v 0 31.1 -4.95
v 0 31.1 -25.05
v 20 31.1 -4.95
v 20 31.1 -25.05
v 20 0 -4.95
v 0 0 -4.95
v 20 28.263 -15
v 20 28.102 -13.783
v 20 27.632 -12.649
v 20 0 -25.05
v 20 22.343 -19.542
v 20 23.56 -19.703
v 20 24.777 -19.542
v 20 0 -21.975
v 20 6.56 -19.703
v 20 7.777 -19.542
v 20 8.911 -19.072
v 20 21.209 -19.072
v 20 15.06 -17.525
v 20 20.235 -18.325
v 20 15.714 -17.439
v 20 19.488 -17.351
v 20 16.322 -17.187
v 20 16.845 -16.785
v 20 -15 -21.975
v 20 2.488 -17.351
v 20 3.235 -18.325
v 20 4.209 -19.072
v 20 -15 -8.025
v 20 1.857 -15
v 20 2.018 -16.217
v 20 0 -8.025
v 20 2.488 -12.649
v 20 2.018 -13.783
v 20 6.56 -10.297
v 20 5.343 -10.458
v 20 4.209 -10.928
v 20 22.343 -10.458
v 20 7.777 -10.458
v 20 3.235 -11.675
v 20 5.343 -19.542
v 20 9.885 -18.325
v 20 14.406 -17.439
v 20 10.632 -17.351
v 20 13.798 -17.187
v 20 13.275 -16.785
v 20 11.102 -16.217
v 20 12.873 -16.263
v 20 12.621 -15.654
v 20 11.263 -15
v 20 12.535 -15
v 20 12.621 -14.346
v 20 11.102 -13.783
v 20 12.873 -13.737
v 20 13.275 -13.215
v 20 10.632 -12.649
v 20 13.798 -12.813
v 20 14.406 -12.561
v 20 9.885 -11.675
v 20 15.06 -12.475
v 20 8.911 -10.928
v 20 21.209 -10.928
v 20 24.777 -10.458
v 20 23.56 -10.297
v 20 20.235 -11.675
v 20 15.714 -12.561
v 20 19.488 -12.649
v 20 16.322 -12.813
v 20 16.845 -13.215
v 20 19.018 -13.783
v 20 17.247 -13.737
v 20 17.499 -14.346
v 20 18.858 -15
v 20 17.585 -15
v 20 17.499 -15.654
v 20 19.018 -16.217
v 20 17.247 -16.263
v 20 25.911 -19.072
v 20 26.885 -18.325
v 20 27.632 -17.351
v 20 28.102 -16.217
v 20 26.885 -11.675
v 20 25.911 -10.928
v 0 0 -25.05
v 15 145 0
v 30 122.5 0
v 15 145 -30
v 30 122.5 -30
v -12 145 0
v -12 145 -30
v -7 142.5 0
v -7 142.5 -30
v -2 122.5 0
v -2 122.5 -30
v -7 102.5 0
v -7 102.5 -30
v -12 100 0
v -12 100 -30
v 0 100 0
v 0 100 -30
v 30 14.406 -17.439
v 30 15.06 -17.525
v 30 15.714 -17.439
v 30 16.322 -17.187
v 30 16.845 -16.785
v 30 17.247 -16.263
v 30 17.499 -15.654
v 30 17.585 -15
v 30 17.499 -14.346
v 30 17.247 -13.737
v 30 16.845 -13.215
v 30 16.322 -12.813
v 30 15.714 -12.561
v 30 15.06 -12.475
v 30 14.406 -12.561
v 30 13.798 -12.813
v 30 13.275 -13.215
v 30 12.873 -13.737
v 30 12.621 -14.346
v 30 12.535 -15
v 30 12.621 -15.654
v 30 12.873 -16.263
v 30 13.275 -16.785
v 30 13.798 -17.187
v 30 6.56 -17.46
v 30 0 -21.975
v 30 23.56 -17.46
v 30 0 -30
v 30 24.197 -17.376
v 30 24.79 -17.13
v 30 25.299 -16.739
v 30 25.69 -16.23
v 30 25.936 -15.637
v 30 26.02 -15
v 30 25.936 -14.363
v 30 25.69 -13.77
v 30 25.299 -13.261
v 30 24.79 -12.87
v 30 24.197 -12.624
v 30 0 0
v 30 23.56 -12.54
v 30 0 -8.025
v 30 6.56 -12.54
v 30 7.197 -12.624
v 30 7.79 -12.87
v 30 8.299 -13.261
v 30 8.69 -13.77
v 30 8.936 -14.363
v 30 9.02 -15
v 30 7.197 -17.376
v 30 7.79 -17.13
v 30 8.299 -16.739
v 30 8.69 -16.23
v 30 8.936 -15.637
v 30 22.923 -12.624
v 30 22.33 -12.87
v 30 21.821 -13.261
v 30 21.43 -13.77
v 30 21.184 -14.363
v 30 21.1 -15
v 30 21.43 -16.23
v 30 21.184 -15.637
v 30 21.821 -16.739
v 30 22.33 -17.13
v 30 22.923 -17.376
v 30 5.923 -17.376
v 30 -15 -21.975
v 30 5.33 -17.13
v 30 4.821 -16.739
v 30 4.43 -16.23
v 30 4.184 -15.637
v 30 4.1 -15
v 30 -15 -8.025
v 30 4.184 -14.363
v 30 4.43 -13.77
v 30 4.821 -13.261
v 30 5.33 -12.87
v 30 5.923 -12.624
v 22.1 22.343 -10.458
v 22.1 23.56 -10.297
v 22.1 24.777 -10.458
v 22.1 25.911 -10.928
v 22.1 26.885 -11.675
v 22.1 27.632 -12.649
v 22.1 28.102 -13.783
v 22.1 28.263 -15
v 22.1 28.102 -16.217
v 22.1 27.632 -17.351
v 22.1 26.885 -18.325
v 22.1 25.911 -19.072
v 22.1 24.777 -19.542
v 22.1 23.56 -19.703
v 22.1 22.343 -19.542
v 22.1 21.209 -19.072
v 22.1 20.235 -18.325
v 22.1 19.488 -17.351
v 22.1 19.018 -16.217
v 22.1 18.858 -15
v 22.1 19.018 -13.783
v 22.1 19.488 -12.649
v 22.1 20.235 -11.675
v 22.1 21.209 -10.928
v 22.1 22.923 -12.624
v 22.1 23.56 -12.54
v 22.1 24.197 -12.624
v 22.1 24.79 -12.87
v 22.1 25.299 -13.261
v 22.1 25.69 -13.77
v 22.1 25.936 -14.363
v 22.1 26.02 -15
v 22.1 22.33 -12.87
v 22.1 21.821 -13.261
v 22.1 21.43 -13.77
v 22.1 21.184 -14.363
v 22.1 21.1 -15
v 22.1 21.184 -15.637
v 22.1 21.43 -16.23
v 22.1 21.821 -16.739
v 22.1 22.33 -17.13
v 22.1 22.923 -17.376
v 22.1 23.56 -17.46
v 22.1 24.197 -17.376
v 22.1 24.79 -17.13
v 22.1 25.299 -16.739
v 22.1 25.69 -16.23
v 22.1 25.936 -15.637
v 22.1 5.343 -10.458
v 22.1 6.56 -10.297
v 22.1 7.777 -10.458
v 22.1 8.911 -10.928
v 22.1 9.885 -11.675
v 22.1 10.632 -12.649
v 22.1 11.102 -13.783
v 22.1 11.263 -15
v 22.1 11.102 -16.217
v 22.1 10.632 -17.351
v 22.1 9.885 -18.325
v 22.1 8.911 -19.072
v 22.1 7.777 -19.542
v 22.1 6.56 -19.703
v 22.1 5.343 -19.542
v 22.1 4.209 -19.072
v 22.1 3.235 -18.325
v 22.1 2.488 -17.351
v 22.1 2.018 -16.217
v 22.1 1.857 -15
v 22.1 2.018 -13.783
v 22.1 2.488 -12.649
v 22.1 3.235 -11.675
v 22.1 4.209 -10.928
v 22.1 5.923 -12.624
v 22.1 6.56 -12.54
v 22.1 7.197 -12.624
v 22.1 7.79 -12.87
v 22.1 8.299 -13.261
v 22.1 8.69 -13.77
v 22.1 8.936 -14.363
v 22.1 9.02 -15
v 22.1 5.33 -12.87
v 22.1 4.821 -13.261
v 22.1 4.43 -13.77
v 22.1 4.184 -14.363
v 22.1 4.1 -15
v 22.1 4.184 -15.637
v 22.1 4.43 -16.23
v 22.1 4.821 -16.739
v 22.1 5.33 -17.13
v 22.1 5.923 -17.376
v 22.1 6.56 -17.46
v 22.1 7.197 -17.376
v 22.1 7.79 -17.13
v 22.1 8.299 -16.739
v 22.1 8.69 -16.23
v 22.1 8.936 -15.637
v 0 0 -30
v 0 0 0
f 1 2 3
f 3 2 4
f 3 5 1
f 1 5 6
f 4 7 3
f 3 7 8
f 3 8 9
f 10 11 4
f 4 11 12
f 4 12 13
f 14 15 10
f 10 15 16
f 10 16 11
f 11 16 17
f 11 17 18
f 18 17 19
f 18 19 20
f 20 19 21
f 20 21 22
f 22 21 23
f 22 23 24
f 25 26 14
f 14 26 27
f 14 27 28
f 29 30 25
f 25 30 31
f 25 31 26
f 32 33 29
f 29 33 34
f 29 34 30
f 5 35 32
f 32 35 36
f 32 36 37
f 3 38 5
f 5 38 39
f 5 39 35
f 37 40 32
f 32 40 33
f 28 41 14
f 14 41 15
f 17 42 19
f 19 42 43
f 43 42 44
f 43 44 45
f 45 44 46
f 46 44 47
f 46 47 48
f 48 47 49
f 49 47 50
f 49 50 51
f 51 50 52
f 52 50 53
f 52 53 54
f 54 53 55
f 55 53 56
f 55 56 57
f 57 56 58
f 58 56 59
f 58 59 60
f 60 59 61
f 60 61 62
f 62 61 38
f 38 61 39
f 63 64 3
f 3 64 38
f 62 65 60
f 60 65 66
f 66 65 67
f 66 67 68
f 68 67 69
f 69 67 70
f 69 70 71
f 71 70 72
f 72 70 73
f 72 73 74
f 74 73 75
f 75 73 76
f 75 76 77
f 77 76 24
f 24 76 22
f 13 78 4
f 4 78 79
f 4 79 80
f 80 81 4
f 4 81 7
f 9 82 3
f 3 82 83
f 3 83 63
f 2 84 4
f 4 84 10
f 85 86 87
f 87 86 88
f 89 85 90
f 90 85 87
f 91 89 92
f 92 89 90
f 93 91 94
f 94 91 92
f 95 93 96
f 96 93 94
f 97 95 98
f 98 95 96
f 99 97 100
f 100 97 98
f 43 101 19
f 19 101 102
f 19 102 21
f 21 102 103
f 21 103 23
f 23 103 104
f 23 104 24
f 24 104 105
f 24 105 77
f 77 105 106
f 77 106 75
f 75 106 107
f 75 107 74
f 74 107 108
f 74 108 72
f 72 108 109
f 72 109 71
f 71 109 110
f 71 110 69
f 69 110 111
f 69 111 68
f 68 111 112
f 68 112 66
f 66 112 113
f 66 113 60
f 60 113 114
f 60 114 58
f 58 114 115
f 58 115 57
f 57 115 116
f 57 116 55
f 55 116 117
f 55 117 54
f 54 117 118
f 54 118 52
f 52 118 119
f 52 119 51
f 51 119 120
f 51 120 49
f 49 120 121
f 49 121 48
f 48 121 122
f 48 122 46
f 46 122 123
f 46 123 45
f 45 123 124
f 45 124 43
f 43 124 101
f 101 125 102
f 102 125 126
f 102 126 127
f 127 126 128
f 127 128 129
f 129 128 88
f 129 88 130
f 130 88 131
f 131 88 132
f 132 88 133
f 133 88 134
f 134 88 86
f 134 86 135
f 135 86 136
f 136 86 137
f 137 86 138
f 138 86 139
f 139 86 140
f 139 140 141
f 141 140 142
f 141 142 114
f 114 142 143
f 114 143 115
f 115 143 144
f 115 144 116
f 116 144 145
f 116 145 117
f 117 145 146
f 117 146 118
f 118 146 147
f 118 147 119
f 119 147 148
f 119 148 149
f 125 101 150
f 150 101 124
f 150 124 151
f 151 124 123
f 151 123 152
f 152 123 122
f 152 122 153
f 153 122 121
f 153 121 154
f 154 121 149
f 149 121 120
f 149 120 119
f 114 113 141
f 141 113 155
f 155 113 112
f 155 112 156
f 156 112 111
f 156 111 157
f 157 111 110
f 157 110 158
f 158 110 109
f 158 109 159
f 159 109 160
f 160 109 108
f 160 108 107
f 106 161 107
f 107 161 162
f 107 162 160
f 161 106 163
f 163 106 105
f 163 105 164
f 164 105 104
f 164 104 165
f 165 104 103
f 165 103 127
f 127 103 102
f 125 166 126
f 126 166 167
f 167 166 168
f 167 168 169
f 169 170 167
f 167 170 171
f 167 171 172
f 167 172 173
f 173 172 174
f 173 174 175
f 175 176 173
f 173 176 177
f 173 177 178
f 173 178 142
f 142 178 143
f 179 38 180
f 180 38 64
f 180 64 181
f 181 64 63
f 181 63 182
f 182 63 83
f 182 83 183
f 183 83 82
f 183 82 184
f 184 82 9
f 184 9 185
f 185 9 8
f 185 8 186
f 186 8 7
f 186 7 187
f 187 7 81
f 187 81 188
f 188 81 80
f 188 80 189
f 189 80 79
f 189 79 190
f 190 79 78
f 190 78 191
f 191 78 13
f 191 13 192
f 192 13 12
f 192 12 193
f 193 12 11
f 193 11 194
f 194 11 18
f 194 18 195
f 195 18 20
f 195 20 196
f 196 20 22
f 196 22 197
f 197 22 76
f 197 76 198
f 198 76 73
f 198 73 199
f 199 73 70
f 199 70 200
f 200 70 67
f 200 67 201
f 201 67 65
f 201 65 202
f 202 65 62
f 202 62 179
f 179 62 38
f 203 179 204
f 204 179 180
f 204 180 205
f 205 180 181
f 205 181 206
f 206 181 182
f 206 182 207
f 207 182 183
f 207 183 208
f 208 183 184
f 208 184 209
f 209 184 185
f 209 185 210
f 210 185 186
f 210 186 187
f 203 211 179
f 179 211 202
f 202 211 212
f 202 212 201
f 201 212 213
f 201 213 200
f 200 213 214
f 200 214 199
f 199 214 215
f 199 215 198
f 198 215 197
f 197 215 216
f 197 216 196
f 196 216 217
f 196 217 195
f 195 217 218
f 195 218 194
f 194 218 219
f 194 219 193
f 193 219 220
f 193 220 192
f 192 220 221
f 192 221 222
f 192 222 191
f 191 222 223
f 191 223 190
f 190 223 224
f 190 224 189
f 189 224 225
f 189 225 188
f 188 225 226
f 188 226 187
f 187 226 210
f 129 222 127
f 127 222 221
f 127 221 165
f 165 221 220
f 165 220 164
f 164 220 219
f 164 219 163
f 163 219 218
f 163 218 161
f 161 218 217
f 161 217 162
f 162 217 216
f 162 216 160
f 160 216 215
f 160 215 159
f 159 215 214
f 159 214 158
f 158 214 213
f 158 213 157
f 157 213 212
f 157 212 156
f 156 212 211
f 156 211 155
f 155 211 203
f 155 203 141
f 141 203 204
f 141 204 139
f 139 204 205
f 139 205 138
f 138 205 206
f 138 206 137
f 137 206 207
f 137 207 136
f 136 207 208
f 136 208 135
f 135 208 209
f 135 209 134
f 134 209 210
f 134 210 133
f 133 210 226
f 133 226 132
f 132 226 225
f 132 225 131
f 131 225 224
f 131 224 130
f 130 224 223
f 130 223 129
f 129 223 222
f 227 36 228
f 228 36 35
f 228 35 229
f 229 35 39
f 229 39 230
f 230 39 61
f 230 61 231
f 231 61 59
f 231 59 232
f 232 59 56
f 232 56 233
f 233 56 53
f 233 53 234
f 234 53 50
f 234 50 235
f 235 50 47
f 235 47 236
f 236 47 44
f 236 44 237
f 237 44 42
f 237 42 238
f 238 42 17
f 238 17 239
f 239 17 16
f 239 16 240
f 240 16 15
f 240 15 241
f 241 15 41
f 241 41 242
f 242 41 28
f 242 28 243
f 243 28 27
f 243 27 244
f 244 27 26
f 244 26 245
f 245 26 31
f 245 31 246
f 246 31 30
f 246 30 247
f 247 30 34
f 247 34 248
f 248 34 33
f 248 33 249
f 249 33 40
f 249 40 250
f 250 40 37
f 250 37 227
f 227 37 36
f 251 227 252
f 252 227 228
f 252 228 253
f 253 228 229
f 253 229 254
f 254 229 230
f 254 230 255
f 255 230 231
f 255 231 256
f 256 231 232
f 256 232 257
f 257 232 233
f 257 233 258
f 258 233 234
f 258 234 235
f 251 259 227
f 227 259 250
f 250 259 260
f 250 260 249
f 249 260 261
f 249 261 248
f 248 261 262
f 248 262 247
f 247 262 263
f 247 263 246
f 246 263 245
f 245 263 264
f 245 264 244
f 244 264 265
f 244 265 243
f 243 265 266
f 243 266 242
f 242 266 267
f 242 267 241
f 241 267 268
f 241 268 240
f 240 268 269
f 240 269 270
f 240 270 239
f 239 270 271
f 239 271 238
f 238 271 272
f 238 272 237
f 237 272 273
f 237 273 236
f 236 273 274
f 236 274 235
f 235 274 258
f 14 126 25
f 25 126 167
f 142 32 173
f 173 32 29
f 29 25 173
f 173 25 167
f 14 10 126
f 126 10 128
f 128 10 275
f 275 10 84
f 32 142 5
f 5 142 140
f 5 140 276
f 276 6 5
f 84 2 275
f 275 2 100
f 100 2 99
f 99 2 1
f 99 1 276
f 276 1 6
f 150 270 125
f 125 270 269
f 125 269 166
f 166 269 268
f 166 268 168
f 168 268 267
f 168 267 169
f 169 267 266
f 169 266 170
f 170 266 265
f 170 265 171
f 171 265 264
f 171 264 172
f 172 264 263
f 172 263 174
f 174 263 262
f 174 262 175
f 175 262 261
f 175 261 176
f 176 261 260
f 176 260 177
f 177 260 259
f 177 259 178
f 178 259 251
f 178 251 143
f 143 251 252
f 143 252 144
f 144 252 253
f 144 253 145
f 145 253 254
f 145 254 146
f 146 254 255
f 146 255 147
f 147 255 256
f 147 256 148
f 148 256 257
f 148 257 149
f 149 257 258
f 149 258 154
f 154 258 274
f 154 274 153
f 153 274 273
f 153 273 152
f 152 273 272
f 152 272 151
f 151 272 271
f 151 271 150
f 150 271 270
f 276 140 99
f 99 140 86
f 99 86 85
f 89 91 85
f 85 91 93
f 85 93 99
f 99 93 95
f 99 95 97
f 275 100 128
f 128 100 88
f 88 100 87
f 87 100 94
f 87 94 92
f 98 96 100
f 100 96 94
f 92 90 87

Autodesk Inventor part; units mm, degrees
ref_plane "YZ Plane" through (0, 0, 0) normal (1, 0, 0) x (0, 1, 0)
ref_plane "XZ Plane" through (0, 0, 0) normal (0, 1, 0) x (-1, 0, 0)
ref_plane "XY Plane" through (0, 0, 0) normal (0, 0, 1) x (1, 0, 0)
sketch "Sketch1" plane through (0, 0, 0) normal (0, 0, 1) x (1, 0, 0)
  line L0 (0, 0) -> (25, 0)
  line L1 (25, 0) -> (25, 40)
  line L2 (25, 40) -> (0, 40)
  line L3 (0, 40) -> (0, 0)
  dimension "d1" = 25
  dimension "d2" = 40
  dimension "d3" = 25
extrude "Extrusion1" add sketch "Sketch1" against normal blind 30
sketch "Sketch2" plane through (25, 0, 0) normal (1, 0, 0) x (0, 0, -1)
  line L0 (0, 0) -> (30, 0) projected
  circle A0 centre (15, 6.56) radius 2.46
extrude "Extrusion2" cut sketch "Sketch2" against normal blind 30
sketch "Sketch3" plane through (0, 0, 0) normal (-1, 0, 0) x (0, 0, 1)
  line L0 (0, 0) -> (-30, 0) projected
  line L1 (-25.05, 0) -> (-4.95, 0)
  line L2 (-4.95, 0) -> (-4.95, 33.12)
  line L3 (-4.95, 33.12) -> (-25.05, 33.12)
  line L4 (-25.05, 33.12) -> (-25.05, 0)
  dimension "d11" = 20.1
extrude "Extrusion3" cut sketch "Sketch3" against normal blind 20
sketch "Sketch4" plane through (0, 0, 0) normal (0, -1, 0) x (1, 0, 0)
  line L0 (20, -4.95) -> (20, -25.05) projected
  line L1 (20, -15) -> (25, -15)
  line L2 (25, 0) -> (25, -30) projected
  line L3 (20, -8.025) -> (25, -8.025)
  line L4 (25, -8.025) -> (25, -21.975)
  line L5 (25, -21.975) -> (20, -21.975)
  line L6 (20, -21.975) -> (20, -8.025)
  line L7 (20, -8.025) -> (25, -21.975) construction
  line L8 (25, -8.025) -> (20, -21.975) construction
  line L9 (25, -12.54) -> (25, -17.46) projected
  point P0 (0, 0)
  point P1 (22.5, -15)
  dimension "d14" = 13.95
extrude "Extrusion4" add sketch "Sketch4" along normal blind 15
sketch "Sketch5" plane through (20, 0, 0) normal (-1, 0, 0) x (0, 0, 1)
  circle A0 centre (-15, 6.56) radius 2.46 projected
  circle A1 centre (-15, 6.56) radius 4.7025
  circle A2 centre (-15, 6.56) radius 2.46 projected
  circle A3 centre (-15, 6.56) radius 2.46
  point P0 (0, 0)
  dimension "d17" = 9.405
extrude "Extrusion5" cut sketch "Sketch5" against normal blind 2.1
sketch "Sketch6" plane through (25, 0, 0) normal (1, 0, 0) x (0, 0, -1)
  circle A0 centre (15, 6.56) radius 4.7025 projected
  line L0 (15, 6.56) -> (15, 23.56)
  circle A1 centre (15, 23.56) radius 2.46
  point P0 (0, 0)
  dimension "d20" = 17
  dimension "d21" = 4.92
extrude "Extrusion6" cut sketch "Sketch6" against normal blind 10 contours A1
sketch "Sketch7" plane through (20, 0, 0) normal (-1, 0, 0) x (0, 0, 1)
  circle A0 centre (-15, 23.56) radius 2.46 projected
  circle A1 centre (-15, 23.56) radius 4.7025
  point P0 (0, 0)
  dimension "d24" = 9.405
extrude "Extrusion7" cut sketch "Sketch7" against normal blind 2.1
sketch "Sketch9" plane through (25, 0, 0) normal (1, 0, 0) x (0, 0, -1)
  circle A0 centre (15, 6.56) radius 2.46 projected
  circle A1 centre (15, 6.56) radius 2.46
  circle A2 centre (15, 23.56) radius 2.46 projected
  circle A3 centre (15, 23.56) radius 2.46
  line L0 (30, 40) -> (30, 0) projected
  line L1 (30, 0) -> (30, 40)
  line L2 (30, 40) -> (0, 40)
  line L3 (0, 40) -> (0, 0)
  line L4 (0, 0) -> (8.025, 0) projected
  line L5 (21.975, 0) -> (21.975, -15)
  line L6 (21.975, -15) -> (8.025, -15)
  line L7 (8.025, -15) -> (8.025, 0)
  line L8 (0, 0) -> (8.025, 0)
  line L9 (21.975, 0) -> (30, 0)
extrude "Extrusion8" add sketch "Sketch9" along normal blind 5
sketch "Sketch10" plane through (0, 40, 0) normal (0, 1, 0) x (1, 0, 0)
  line L0 (0, 30) -> (30, 30) projected
  line L1 (30, 0) -> (0, 0) projected
  line L2 (0, 30) -> (30, 30)
  line L3 (30, 30) -> (30, 0)
  line L4 (30, 0) -> (0, 0)
  line L5 (0, 0) -> (0, 30)
extrude "Extrusion9" add sketch "Sketch10" along normal blind 30
sketch "Sketch12" plane through (30, 0, 0) normal (1, 0, 0) x (0, 0, -1)
  circle A0 centre (15, 6.56) radius 2.46 projected
  line L0 (15, 6.56) -> (15, 15.06)
  circle A1 centre (15, 15.06) radius 2.525
  point P0 (0, 0)
  dimension "d31" = 8.5
  dimension "d33" = 5.05
extrude "Extrusion10" cut sketch "Sketch12" against normal blind 30 contours A1
sketch "Sketch14" plane through (0, 0, 0) normal (0, 0, 1) x (1, 0, 0)
  line L0 (30, 70) -> (0, 70) projected
  line L1 (0, 70) -> (0, 100)
  line L2 (30, 0) -> (30, 70) projected
  line L3 (30, 122.5) -> (30, 70)
  line L4 (30, 105) -> (30, 100)
  line L5 (-12, 145) -> (15, 145)
  line L6 (-7, 142.5) -> (-12, 145)
  line L7 (-7, 102.5) -> (-12, 100)
  line L8 (-7, 102.5) -> (-2, 122.5)
  line L9 (-2, 122.5) -> (-7, 142.5)
  line L10 (30, 122.5) -> (15, 145)
  line L11 (0, 100) -> (-12, 100)
  point P0 (0, 0)
  dimension "d86" = 12
extrude "Extrusion12" add sketch "Sketch14" against normal blind 30
sketch "Sketch15" plane through (0, 0, -25.05) normal (-1, 0, 0) x (0, 0, 1)
  line L0 (0, 33.12) -> (20.1, 33.12) projected
  line L1 (20.1, 33.12) -> (20.1, 0) projected
  line L2 (0, 33.12) -> (20.1, 33.12)
  line L3 (20.1, 33.12) -> (20.1, 31.1)
  line L4 (20.1, 31.1) -> (0, 31.1)
  line L5 (0, 31.1) -> (0, 33.12)
  point P0 (25.05, 0)
  dimension "d57" = 2.02
extrude "Extrusion13" add sketch "Sketch15" against normal blind 20
properties part number "rec_a_40mm_x_30mm"
